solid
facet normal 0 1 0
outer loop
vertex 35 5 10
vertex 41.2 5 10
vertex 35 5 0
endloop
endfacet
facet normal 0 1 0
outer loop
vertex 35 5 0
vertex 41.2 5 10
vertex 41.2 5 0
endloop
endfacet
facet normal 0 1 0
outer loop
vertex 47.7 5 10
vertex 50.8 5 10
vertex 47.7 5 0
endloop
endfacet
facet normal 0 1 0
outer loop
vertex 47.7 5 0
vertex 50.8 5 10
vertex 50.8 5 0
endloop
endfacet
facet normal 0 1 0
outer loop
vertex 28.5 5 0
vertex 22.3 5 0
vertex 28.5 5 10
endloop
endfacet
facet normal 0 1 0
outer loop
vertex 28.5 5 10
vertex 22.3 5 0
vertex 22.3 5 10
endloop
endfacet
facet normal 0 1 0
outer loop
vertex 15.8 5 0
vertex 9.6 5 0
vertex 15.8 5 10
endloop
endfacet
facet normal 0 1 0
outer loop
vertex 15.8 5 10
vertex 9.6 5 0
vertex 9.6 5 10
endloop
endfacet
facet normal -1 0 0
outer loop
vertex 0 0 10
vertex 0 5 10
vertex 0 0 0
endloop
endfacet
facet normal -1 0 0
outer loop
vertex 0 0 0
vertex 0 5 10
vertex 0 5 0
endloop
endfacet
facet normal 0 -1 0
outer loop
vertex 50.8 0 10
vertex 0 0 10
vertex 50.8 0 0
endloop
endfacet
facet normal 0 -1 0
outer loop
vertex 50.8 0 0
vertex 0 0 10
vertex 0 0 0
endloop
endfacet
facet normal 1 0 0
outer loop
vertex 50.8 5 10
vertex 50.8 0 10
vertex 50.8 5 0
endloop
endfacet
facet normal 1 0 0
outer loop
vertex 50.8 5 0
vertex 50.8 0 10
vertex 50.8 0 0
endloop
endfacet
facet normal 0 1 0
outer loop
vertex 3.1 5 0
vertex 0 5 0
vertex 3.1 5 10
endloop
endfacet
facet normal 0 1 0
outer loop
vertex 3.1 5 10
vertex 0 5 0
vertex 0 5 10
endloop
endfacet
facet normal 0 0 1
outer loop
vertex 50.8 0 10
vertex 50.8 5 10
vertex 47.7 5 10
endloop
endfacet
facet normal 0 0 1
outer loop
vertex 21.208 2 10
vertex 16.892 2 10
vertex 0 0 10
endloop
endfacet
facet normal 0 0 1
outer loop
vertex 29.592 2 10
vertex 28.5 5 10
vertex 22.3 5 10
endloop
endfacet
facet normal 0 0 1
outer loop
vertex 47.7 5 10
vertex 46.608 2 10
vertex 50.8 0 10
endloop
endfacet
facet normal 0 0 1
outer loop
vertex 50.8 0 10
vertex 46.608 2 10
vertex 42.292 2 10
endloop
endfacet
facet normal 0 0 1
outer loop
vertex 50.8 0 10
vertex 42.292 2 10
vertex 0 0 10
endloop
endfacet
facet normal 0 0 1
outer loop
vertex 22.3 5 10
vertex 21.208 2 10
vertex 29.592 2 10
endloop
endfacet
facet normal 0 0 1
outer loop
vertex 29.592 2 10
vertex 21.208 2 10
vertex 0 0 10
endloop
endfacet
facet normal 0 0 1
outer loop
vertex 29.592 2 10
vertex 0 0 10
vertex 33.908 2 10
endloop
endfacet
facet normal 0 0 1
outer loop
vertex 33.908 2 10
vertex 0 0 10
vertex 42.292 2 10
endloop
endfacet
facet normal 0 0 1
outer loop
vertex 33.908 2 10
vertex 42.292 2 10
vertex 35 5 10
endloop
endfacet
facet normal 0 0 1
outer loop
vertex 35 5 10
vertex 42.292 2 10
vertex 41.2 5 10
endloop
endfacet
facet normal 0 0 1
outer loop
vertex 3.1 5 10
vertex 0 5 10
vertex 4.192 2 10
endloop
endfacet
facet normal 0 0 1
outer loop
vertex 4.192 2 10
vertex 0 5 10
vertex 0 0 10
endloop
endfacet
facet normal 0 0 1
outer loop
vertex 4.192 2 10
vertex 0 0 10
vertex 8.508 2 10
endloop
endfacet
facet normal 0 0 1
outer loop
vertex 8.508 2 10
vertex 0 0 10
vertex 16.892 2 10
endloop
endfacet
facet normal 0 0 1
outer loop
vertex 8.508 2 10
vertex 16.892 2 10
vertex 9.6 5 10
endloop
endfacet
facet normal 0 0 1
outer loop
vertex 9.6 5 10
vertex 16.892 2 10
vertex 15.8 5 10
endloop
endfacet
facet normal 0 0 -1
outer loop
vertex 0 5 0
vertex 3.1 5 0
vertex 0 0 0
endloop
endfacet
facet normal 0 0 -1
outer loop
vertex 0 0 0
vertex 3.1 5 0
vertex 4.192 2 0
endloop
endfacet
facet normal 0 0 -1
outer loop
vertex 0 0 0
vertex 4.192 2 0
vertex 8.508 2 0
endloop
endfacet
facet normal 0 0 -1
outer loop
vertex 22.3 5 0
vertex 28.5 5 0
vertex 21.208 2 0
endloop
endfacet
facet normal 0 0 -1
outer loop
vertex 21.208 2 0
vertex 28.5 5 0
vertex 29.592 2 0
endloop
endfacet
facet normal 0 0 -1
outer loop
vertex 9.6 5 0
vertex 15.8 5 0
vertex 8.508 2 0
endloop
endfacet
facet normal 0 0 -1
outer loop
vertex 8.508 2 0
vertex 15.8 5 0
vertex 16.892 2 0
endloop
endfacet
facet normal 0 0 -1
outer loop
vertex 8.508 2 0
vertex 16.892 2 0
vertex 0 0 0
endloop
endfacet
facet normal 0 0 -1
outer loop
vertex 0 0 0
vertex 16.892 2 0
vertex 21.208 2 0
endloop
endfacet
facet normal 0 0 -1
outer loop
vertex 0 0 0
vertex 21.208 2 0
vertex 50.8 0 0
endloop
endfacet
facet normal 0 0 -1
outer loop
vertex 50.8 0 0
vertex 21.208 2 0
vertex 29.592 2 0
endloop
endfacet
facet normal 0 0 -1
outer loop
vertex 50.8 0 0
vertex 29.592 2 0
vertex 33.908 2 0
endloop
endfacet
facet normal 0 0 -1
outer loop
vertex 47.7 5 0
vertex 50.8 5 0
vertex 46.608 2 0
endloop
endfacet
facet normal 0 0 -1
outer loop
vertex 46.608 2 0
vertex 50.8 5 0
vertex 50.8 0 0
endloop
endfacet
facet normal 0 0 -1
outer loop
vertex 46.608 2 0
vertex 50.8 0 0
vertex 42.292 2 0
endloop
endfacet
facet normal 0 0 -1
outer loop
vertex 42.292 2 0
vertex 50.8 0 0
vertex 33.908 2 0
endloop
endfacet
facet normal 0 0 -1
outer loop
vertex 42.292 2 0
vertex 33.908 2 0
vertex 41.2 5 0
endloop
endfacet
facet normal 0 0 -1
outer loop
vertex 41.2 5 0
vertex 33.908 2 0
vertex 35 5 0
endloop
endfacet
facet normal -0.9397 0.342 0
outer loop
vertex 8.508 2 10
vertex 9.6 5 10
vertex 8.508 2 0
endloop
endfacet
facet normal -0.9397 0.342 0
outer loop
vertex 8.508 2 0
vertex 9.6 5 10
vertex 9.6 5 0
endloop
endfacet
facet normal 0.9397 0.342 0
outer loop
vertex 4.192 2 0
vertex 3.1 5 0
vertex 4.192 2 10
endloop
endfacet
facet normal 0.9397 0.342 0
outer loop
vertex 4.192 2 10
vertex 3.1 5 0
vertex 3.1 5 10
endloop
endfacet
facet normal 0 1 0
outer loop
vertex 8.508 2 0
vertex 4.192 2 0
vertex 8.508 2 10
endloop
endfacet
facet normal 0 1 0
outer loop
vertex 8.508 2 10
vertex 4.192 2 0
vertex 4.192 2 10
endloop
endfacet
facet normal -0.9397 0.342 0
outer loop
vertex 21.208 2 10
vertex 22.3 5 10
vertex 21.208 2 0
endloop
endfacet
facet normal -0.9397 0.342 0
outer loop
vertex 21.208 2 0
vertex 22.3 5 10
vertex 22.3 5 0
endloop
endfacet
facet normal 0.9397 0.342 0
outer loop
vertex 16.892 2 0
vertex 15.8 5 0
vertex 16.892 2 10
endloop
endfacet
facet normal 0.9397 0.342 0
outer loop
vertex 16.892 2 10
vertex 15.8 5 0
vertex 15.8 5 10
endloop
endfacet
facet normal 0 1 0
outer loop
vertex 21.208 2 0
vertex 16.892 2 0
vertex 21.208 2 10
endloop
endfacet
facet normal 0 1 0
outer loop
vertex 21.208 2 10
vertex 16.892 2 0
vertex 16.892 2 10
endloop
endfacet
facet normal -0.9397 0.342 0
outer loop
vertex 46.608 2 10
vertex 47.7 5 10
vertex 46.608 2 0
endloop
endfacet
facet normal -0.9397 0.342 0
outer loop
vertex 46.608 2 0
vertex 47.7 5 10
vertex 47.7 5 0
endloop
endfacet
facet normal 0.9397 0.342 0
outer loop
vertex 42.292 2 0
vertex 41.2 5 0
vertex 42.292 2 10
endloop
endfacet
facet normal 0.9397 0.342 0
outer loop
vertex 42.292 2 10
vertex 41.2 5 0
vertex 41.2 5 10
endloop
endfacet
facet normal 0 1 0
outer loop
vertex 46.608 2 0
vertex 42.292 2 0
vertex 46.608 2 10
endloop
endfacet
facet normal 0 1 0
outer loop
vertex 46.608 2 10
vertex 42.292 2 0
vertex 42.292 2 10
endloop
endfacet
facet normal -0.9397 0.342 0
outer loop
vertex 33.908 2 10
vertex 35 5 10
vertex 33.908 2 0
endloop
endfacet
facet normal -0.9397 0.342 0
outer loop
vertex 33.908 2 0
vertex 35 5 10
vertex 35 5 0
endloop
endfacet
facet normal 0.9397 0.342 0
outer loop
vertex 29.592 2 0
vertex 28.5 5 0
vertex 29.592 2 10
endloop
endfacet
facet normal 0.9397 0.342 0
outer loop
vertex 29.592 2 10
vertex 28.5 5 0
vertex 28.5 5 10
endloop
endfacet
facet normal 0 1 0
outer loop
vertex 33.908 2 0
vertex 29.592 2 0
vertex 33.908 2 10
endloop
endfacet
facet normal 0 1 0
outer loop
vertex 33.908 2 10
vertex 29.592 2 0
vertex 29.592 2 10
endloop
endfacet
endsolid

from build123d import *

# Parameters (mm, degrees)
SKETCH1_W           = 50.8
SKETCH1_H           = 5
BOSS_EXTRUDE1_DEPTH = 10
CUT_EXTRUDE2_DEPTH  = 53.01576684
LPATTERN1_COUNT     = 4
LPATTERN1_PITCH     = 12.7


with BuildPart() as part:
    # Sketch1 → Boss-Extrude1 (new body)
    with BuildSketch(Plane.XY):
        with Locations((25.4, 2.5)):
            Rectangle(SKETCH1_W, SKETCH1_H)
    extrude(amount=BOSS_EXTRUDE1_DEPTH)

    # Sketch3 → Cut-Extrude2 (cut, through all)
    with BuildSketch(Plane.XY.offset(10)):
        Polygon((2.008089297, 8), (4.191910703, 2), (8.508089297, 2), (10.691910703, 8), align=None)
    cut_extrude2 = extrude(amount=-CUT_EXTRUDE2_DEPTH, mode=Mode.SUBTRACT)

    # LPattern1: Cut-Extrude2 ×4
    with Locations(*[(i * LPATTERN1_PITCH, 0, 0) for i in range(1, LPATTERN1_COUNT)]):
        add(cut_extrude2, mode=Mode.SUBTRACT)


solid = part.part
